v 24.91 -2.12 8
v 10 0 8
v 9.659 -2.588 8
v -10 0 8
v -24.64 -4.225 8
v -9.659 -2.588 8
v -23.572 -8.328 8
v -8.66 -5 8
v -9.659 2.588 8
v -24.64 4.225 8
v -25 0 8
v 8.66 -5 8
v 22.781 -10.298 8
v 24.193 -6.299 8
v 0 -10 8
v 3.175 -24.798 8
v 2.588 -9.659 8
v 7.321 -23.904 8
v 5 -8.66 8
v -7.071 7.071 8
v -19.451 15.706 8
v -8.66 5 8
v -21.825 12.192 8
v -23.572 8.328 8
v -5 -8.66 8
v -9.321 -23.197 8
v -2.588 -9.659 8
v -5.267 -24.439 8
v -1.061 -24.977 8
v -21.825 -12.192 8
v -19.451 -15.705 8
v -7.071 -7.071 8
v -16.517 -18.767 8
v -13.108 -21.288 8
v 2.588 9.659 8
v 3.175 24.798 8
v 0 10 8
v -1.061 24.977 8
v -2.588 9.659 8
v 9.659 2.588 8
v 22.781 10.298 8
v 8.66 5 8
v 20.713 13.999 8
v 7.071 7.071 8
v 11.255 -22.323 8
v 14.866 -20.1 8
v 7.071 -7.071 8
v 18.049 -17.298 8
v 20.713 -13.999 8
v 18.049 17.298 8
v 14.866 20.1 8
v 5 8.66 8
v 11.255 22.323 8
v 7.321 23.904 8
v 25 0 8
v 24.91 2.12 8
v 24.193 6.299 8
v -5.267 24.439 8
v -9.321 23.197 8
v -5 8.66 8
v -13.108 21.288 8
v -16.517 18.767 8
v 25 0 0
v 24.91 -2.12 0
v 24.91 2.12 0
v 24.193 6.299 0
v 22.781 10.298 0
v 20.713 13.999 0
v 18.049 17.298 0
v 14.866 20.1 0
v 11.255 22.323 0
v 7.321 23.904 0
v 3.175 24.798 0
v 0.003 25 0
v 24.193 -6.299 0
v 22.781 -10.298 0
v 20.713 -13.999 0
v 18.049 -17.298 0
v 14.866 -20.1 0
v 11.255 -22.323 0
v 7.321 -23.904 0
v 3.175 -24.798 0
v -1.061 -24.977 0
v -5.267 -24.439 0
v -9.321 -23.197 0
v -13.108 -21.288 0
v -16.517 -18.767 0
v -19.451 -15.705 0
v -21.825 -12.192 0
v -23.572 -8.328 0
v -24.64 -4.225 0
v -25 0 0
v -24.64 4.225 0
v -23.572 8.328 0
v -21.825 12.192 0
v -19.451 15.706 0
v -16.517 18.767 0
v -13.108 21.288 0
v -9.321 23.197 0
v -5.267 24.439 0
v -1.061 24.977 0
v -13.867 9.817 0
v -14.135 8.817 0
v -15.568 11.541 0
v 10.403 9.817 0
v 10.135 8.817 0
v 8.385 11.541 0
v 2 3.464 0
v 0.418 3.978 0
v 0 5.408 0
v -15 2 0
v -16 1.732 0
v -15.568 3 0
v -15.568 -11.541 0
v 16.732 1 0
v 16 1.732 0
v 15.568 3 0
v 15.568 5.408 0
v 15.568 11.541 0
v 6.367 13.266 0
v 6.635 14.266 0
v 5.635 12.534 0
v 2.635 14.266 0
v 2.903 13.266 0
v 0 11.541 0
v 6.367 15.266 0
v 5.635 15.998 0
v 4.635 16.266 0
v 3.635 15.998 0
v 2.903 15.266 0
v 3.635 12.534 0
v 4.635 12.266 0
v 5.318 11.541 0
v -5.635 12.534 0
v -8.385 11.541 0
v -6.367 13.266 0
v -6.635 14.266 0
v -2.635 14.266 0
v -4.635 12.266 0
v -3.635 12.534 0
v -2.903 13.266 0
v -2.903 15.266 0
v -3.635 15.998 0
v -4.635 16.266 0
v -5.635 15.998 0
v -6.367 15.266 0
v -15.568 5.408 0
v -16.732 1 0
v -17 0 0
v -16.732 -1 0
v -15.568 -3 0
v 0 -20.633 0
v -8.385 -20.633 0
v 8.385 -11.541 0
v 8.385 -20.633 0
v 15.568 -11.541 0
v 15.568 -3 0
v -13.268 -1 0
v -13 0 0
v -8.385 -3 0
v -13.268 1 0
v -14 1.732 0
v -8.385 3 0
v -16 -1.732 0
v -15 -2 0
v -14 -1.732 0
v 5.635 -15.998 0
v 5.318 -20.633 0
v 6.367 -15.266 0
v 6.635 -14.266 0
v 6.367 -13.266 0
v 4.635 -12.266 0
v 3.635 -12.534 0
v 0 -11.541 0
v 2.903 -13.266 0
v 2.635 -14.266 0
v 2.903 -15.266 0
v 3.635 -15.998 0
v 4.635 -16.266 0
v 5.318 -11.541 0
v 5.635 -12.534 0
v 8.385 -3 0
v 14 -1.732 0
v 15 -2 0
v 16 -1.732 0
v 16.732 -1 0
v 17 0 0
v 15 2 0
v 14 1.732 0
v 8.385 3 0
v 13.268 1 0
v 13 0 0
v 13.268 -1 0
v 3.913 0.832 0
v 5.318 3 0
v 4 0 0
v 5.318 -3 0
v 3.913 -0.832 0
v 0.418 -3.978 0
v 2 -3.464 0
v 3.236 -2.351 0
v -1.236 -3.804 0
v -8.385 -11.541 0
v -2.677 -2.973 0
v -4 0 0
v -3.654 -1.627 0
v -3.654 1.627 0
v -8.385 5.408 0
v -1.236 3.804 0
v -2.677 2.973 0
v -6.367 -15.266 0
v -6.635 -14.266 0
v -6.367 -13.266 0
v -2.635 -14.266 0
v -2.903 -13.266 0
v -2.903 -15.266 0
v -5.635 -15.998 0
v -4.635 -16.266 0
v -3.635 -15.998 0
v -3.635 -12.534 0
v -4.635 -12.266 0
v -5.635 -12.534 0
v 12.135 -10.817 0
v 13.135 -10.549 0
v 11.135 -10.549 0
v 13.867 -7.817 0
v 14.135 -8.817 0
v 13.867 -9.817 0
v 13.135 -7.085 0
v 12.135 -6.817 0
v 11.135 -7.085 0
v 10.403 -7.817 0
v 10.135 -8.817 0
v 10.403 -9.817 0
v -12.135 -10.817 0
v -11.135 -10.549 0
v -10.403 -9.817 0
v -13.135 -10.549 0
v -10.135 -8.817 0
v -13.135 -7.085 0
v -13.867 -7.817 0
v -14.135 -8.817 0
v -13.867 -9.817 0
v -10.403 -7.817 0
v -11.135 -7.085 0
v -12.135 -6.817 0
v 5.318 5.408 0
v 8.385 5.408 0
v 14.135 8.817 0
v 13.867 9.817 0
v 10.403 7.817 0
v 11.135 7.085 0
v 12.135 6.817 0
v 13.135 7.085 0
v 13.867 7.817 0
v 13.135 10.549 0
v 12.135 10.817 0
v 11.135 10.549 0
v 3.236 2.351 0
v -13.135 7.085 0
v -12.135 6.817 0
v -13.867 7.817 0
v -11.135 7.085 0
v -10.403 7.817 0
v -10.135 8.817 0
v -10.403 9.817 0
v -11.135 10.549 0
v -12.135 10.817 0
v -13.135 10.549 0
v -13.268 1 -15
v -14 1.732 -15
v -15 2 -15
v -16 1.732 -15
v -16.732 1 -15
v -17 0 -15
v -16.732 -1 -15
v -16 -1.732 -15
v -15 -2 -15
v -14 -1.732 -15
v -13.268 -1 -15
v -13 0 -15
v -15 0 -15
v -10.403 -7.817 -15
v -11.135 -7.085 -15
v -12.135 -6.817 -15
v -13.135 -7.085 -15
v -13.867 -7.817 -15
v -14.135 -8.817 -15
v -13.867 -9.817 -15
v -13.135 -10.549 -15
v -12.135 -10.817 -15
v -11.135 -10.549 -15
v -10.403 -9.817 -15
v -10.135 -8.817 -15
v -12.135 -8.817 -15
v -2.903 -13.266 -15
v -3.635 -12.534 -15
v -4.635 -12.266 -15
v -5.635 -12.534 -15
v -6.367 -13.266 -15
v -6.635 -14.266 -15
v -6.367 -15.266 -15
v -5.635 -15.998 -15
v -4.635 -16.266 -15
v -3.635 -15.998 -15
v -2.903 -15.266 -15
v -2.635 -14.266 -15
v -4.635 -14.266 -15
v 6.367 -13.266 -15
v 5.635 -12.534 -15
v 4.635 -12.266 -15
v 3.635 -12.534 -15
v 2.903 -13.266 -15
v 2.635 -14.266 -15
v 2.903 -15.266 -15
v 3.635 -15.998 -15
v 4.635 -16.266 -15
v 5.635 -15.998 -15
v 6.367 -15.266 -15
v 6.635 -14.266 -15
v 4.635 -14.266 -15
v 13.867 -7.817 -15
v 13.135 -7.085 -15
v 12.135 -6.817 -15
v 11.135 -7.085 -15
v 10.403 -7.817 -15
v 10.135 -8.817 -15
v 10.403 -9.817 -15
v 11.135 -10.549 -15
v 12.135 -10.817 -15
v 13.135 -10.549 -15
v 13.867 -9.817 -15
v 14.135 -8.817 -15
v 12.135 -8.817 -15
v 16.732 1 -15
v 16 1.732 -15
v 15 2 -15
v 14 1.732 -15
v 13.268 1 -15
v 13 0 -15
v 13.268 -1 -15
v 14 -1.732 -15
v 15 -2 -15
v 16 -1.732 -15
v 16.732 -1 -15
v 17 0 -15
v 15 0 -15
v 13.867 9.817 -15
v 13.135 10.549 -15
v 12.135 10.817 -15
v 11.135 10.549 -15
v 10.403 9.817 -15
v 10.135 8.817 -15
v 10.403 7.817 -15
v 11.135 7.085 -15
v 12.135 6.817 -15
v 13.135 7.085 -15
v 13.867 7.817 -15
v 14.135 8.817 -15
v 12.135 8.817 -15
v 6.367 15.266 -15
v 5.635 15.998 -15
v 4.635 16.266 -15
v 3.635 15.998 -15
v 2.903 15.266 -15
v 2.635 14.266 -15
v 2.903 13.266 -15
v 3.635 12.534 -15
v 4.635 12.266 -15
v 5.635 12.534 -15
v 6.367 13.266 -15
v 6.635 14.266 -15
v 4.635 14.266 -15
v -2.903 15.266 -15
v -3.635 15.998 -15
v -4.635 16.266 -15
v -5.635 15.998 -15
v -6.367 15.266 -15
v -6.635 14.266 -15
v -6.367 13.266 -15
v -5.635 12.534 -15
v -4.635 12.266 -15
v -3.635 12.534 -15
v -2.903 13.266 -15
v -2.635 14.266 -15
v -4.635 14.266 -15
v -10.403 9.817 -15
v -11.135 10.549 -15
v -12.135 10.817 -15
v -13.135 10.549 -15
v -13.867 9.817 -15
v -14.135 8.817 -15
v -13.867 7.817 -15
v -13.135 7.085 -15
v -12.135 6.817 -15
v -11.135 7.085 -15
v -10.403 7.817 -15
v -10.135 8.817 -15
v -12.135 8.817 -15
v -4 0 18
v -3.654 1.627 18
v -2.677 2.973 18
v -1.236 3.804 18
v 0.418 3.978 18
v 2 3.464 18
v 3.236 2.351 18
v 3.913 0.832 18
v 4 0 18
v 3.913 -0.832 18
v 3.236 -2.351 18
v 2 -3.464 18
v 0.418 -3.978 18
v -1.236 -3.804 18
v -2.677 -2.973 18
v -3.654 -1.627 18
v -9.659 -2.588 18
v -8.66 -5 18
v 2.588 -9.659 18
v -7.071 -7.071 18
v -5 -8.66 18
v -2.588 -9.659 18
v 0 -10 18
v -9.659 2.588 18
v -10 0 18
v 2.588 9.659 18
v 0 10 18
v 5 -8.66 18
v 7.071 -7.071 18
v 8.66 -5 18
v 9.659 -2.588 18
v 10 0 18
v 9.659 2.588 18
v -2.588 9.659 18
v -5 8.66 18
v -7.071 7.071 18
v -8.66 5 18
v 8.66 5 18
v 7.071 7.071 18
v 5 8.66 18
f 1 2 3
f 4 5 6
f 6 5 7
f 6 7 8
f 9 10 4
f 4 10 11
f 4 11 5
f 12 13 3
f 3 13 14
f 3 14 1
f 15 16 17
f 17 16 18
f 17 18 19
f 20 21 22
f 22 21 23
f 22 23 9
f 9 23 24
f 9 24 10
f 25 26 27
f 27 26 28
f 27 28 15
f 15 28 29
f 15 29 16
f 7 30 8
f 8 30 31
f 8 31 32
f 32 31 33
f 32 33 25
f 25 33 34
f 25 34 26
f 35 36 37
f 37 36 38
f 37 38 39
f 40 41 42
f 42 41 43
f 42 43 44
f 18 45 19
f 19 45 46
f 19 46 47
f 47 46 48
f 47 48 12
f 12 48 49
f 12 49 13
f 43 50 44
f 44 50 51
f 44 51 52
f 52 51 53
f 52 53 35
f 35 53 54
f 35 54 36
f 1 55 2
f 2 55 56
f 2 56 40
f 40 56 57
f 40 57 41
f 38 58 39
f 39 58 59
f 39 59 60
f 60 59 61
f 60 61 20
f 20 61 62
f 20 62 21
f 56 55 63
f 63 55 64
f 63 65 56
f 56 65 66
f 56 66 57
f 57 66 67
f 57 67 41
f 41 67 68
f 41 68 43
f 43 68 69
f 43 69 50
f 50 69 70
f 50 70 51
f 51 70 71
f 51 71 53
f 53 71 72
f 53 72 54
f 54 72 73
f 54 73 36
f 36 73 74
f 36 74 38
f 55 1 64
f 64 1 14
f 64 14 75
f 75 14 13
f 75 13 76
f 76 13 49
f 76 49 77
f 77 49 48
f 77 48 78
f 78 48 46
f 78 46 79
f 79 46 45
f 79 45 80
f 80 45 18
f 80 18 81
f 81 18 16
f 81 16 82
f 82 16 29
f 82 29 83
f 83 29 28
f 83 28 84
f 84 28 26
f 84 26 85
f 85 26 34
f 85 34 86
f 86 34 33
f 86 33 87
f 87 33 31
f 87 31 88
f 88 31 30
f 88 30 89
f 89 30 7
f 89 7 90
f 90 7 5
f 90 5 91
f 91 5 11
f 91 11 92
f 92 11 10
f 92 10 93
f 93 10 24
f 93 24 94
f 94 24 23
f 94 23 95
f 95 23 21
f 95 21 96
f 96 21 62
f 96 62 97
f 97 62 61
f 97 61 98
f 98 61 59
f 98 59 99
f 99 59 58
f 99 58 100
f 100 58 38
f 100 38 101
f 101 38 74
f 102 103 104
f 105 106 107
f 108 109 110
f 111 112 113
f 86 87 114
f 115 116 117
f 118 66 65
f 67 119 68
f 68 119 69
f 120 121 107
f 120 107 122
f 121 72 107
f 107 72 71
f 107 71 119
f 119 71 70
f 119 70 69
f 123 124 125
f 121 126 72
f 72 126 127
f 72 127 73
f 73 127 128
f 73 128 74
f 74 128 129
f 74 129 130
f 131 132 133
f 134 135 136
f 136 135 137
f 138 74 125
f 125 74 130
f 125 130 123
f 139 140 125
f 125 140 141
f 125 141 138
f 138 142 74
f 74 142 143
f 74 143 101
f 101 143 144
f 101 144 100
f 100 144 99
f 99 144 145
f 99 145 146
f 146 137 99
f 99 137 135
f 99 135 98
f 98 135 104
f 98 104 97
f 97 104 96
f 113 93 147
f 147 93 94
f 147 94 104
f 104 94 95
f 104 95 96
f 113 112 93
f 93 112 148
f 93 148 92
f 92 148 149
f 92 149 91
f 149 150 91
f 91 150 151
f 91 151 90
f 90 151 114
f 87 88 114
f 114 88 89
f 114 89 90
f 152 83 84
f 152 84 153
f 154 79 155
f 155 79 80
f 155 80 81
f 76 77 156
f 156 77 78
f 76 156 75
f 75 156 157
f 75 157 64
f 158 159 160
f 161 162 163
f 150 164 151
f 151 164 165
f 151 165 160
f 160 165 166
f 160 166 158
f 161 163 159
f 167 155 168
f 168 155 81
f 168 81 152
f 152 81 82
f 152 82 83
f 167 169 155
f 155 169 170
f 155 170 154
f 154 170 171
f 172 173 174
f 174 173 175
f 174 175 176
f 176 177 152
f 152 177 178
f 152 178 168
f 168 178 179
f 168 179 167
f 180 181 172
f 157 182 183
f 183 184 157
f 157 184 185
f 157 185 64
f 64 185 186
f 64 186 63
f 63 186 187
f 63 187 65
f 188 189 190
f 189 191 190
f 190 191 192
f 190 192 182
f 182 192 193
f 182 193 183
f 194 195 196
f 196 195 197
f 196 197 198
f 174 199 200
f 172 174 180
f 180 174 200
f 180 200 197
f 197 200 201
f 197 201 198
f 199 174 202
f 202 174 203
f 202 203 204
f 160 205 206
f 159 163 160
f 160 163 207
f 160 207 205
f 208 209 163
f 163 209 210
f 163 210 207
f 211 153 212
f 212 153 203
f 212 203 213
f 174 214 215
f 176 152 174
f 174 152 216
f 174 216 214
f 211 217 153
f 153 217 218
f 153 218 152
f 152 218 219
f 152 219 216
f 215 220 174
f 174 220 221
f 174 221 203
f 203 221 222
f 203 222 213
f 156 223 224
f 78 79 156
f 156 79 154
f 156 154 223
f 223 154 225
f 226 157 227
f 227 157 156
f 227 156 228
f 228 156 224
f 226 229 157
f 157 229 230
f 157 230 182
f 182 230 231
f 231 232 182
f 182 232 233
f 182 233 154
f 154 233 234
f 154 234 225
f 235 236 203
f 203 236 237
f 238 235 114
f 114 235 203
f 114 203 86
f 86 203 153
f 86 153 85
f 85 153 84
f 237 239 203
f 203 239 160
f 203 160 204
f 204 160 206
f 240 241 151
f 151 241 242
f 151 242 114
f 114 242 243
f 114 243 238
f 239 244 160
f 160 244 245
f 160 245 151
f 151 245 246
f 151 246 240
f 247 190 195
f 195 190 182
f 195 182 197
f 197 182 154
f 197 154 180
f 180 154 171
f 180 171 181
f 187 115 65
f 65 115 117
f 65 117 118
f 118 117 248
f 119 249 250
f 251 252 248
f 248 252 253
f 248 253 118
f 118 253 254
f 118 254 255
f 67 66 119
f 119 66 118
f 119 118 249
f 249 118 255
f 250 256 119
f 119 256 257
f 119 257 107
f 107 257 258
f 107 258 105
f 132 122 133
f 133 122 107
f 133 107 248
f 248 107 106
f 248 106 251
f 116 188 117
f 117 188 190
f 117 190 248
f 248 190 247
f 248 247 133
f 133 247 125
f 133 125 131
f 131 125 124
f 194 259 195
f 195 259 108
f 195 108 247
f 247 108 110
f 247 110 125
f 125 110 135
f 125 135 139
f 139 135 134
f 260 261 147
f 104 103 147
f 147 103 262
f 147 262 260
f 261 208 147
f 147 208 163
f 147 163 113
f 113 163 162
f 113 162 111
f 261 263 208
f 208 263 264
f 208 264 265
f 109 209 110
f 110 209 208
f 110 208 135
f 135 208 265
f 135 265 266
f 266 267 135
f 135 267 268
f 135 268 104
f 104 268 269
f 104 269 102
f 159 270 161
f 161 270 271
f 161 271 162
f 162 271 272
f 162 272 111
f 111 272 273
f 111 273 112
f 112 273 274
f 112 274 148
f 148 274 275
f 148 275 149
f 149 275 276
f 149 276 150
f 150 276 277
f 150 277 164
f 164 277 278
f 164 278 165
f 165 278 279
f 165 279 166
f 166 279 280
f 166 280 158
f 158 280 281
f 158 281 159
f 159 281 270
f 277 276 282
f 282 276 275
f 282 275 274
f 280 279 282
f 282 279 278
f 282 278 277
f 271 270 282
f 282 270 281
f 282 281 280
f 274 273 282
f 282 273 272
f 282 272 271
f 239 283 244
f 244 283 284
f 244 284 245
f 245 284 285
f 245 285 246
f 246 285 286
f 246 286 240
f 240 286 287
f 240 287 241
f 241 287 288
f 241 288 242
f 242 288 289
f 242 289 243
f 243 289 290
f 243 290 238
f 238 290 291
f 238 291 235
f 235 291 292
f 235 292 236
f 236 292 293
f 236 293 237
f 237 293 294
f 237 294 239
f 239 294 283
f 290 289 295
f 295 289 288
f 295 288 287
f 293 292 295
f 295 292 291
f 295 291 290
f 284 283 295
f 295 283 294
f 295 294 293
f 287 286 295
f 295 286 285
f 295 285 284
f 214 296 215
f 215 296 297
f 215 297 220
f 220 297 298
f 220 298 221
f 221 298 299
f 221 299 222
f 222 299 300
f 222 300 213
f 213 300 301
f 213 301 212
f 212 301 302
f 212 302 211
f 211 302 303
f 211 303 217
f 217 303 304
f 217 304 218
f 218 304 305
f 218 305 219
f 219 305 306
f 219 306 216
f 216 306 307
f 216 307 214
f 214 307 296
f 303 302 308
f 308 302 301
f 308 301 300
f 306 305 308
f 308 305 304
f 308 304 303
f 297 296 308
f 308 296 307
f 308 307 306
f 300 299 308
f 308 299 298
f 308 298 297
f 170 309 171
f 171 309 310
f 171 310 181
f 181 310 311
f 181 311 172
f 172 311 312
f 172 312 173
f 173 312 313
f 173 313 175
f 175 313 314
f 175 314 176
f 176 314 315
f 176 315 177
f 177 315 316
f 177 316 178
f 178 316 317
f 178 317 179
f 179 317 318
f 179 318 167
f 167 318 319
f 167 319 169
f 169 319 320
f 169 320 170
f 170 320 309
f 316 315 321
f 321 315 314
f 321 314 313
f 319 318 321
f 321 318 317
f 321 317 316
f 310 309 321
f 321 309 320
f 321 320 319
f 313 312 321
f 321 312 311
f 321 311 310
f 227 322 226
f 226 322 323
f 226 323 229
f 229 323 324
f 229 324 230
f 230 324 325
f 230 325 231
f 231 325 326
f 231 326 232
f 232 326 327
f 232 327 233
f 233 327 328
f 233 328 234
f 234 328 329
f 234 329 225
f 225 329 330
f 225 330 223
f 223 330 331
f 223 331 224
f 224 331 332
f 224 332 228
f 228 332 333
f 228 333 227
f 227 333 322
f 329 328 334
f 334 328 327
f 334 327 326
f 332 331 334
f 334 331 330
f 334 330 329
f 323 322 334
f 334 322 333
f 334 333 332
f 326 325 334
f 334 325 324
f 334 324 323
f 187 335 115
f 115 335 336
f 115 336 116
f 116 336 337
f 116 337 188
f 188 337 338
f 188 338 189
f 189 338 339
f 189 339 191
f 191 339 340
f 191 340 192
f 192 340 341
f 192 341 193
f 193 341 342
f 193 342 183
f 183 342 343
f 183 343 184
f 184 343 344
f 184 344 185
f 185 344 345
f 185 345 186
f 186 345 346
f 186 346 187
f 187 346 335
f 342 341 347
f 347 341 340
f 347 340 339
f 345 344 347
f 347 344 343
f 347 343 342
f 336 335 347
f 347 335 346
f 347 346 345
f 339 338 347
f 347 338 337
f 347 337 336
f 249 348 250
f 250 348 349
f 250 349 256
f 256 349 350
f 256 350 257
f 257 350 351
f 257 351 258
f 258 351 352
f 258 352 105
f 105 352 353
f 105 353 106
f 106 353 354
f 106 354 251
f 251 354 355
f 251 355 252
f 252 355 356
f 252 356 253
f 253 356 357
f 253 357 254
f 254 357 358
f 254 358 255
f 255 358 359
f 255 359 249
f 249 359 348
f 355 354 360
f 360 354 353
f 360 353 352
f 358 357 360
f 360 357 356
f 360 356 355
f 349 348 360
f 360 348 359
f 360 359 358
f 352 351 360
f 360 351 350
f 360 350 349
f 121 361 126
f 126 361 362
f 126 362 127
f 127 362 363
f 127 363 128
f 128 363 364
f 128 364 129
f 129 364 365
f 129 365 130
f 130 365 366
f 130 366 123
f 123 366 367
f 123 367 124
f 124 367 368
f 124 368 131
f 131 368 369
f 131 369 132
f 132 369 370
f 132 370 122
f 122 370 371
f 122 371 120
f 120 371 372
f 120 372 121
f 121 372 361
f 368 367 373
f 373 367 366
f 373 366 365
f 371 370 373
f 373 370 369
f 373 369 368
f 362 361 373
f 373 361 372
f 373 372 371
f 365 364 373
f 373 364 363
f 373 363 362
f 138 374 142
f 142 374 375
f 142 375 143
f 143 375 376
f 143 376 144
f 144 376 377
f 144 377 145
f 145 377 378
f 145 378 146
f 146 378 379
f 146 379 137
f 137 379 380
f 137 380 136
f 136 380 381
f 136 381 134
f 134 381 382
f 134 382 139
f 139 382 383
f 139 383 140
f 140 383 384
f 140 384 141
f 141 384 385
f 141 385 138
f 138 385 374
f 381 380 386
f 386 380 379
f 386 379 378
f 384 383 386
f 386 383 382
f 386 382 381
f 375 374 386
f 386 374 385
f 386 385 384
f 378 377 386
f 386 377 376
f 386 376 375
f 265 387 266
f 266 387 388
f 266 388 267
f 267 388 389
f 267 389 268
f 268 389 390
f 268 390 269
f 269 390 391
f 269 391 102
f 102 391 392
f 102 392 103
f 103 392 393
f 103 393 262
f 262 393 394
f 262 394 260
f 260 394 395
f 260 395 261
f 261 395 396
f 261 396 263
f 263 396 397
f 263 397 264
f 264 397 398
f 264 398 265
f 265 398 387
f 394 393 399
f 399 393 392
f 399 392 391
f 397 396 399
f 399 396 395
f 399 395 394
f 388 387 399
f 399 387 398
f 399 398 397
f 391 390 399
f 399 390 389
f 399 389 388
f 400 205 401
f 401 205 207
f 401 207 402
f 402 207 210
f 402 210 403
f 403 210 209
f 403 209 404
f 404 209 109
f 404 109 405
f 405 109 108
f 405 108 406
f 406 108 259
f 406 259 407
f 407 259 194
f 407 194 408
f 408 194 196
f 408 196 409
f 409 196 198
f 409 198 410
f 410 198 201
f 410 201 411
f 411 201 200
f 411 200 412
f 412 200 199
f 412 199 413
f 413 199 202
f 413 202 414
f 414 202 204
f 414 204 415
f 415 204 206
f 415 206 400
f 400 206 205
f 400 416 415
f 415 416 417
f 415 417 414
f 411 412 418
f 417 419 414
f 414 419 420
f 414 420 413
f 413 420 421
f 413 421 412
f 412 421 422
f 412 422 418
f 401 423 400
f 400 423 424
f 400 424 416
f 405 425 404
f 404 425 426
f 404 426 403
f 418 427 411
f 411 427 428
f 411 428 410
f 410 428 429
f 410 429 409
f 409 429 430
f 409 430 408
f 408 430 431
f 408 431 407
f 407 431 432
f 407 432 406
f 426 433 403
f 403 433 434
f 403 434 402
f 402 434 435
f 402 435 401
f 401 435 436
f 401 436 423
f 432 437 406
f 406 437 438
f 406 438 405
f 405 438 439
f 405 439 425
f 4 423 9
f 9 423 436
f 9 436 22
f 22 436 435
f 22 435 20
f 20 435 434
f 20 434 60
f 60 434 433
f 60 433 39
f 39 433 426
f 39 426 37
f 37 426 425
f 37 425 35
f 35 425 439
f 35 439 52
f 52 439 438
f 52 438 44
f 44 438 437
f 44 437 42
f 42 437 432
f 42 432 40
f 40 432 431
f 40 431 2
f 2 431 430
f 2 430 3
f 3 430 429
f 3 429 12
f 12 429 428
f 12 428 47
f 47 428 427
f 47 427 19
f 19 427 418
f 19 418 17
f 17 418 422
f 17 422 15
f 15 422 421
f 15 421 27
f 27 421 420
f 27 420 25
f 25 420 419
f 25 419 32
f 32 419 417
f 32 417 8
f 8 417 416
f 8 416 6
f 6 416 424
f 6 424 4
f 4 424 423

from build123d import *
from build123d.topology import SkipClean

# Parameters (mm, degrees)
SKETCH1_R               = 25
BOSS_EXTRUDE1_DEPTH     = 8
SKETCH2_R               = 2
BOSS_EXTRUDE2_DEPTH     = 15
CUT_EXTRUDE1_DEPTH      = 39.405728739
CUT_EXTRUDE1_DEPTH_BACK = 39.405728739
SKETCH3_R               = 4
SKETCH4_R               = 10
SKETCH4_R_2             = 4
BOSS_EXTRUDE3_DEPTH     = 10


with BuildPart() as part:
    # Sketch1 → Boss-Extrude1 (new body)
    with BuildSketch(Plane.XY):
        Circle(SKETCH1_R)
    extrude(amount=BOSS_EXTRUDE1_DEPTH)

    # Sketch2 → Boss-Extrude2 (add)
    with BuildSketch(Plane(origin=(0, 0, 0), x_dir=(-1, 0, 0), z_dir=(0, 0, -1))):
        with Locations((15, 0)):
            Circle(SKETCH2_R)
        with Locations((12.135254916, -8.816778784)):
            Circle(SKETCH2_R)
        with Locations((4.635254916, -14.265847744)):
            Circle(SKETCH2_R)
        with Locations((-4.635254916, -14.265847744)):
            Circle(SKETCH2_R)
        with Locations((-12.135254916, -8.816778784)):
            Circle(SKETCH2_R)
        with Locations((-15, 0)):
            Circle(SKETCH2_R)
        with Locations((-12.135254916, 8.816778784)):
            Circle(SKETCH2_R)
        with Locations((-4.635254916, 14.265847744)):
            Circle(SKETCH2_R)
        with Locations((4.635254916, 14.265847744)):
            Circle(SKETCH2_R)
        with Locations((12.135254916, 8.816778784)):
            Circle(SKETCH2_R)
    extrude(amount=BOSS_EXTRUDE2_DEPTH)

    # Sketch3 → Cut-Extrude1 (cut, two sides: drawn at the far end of the back side and taken through both)
    with BuildSketch(Plane(origin=(0, 0, 0), x_dir=(-1, 0, 0), z_dir=(0, 0, -1)).offset(-CUT_EXTRUDE1_DEPTH_BACK)):
        Circle(SKETCH3_R)
    extrude(amount=CUT_EXTRUDE1_DEPTH + CUT_EXTRUDE1_DEPTH_BACK, mode=Mode.SUBTRACT)

    # Sketch4 → Boss-Extrude3 (add)
    with SkipClean():  # the faces are left unmerged after this step: merging them gives an invalid solid
        with BuildSketch(Plane.XY.offset(8)):
            Circle(SKETCH4_R)
            Circle(SKETCH4_R_2, mode=Mode.SUBTRACT)
        extrude(amount=BOSS_EXTRUDE3_DEPTH)


solid = part.part
